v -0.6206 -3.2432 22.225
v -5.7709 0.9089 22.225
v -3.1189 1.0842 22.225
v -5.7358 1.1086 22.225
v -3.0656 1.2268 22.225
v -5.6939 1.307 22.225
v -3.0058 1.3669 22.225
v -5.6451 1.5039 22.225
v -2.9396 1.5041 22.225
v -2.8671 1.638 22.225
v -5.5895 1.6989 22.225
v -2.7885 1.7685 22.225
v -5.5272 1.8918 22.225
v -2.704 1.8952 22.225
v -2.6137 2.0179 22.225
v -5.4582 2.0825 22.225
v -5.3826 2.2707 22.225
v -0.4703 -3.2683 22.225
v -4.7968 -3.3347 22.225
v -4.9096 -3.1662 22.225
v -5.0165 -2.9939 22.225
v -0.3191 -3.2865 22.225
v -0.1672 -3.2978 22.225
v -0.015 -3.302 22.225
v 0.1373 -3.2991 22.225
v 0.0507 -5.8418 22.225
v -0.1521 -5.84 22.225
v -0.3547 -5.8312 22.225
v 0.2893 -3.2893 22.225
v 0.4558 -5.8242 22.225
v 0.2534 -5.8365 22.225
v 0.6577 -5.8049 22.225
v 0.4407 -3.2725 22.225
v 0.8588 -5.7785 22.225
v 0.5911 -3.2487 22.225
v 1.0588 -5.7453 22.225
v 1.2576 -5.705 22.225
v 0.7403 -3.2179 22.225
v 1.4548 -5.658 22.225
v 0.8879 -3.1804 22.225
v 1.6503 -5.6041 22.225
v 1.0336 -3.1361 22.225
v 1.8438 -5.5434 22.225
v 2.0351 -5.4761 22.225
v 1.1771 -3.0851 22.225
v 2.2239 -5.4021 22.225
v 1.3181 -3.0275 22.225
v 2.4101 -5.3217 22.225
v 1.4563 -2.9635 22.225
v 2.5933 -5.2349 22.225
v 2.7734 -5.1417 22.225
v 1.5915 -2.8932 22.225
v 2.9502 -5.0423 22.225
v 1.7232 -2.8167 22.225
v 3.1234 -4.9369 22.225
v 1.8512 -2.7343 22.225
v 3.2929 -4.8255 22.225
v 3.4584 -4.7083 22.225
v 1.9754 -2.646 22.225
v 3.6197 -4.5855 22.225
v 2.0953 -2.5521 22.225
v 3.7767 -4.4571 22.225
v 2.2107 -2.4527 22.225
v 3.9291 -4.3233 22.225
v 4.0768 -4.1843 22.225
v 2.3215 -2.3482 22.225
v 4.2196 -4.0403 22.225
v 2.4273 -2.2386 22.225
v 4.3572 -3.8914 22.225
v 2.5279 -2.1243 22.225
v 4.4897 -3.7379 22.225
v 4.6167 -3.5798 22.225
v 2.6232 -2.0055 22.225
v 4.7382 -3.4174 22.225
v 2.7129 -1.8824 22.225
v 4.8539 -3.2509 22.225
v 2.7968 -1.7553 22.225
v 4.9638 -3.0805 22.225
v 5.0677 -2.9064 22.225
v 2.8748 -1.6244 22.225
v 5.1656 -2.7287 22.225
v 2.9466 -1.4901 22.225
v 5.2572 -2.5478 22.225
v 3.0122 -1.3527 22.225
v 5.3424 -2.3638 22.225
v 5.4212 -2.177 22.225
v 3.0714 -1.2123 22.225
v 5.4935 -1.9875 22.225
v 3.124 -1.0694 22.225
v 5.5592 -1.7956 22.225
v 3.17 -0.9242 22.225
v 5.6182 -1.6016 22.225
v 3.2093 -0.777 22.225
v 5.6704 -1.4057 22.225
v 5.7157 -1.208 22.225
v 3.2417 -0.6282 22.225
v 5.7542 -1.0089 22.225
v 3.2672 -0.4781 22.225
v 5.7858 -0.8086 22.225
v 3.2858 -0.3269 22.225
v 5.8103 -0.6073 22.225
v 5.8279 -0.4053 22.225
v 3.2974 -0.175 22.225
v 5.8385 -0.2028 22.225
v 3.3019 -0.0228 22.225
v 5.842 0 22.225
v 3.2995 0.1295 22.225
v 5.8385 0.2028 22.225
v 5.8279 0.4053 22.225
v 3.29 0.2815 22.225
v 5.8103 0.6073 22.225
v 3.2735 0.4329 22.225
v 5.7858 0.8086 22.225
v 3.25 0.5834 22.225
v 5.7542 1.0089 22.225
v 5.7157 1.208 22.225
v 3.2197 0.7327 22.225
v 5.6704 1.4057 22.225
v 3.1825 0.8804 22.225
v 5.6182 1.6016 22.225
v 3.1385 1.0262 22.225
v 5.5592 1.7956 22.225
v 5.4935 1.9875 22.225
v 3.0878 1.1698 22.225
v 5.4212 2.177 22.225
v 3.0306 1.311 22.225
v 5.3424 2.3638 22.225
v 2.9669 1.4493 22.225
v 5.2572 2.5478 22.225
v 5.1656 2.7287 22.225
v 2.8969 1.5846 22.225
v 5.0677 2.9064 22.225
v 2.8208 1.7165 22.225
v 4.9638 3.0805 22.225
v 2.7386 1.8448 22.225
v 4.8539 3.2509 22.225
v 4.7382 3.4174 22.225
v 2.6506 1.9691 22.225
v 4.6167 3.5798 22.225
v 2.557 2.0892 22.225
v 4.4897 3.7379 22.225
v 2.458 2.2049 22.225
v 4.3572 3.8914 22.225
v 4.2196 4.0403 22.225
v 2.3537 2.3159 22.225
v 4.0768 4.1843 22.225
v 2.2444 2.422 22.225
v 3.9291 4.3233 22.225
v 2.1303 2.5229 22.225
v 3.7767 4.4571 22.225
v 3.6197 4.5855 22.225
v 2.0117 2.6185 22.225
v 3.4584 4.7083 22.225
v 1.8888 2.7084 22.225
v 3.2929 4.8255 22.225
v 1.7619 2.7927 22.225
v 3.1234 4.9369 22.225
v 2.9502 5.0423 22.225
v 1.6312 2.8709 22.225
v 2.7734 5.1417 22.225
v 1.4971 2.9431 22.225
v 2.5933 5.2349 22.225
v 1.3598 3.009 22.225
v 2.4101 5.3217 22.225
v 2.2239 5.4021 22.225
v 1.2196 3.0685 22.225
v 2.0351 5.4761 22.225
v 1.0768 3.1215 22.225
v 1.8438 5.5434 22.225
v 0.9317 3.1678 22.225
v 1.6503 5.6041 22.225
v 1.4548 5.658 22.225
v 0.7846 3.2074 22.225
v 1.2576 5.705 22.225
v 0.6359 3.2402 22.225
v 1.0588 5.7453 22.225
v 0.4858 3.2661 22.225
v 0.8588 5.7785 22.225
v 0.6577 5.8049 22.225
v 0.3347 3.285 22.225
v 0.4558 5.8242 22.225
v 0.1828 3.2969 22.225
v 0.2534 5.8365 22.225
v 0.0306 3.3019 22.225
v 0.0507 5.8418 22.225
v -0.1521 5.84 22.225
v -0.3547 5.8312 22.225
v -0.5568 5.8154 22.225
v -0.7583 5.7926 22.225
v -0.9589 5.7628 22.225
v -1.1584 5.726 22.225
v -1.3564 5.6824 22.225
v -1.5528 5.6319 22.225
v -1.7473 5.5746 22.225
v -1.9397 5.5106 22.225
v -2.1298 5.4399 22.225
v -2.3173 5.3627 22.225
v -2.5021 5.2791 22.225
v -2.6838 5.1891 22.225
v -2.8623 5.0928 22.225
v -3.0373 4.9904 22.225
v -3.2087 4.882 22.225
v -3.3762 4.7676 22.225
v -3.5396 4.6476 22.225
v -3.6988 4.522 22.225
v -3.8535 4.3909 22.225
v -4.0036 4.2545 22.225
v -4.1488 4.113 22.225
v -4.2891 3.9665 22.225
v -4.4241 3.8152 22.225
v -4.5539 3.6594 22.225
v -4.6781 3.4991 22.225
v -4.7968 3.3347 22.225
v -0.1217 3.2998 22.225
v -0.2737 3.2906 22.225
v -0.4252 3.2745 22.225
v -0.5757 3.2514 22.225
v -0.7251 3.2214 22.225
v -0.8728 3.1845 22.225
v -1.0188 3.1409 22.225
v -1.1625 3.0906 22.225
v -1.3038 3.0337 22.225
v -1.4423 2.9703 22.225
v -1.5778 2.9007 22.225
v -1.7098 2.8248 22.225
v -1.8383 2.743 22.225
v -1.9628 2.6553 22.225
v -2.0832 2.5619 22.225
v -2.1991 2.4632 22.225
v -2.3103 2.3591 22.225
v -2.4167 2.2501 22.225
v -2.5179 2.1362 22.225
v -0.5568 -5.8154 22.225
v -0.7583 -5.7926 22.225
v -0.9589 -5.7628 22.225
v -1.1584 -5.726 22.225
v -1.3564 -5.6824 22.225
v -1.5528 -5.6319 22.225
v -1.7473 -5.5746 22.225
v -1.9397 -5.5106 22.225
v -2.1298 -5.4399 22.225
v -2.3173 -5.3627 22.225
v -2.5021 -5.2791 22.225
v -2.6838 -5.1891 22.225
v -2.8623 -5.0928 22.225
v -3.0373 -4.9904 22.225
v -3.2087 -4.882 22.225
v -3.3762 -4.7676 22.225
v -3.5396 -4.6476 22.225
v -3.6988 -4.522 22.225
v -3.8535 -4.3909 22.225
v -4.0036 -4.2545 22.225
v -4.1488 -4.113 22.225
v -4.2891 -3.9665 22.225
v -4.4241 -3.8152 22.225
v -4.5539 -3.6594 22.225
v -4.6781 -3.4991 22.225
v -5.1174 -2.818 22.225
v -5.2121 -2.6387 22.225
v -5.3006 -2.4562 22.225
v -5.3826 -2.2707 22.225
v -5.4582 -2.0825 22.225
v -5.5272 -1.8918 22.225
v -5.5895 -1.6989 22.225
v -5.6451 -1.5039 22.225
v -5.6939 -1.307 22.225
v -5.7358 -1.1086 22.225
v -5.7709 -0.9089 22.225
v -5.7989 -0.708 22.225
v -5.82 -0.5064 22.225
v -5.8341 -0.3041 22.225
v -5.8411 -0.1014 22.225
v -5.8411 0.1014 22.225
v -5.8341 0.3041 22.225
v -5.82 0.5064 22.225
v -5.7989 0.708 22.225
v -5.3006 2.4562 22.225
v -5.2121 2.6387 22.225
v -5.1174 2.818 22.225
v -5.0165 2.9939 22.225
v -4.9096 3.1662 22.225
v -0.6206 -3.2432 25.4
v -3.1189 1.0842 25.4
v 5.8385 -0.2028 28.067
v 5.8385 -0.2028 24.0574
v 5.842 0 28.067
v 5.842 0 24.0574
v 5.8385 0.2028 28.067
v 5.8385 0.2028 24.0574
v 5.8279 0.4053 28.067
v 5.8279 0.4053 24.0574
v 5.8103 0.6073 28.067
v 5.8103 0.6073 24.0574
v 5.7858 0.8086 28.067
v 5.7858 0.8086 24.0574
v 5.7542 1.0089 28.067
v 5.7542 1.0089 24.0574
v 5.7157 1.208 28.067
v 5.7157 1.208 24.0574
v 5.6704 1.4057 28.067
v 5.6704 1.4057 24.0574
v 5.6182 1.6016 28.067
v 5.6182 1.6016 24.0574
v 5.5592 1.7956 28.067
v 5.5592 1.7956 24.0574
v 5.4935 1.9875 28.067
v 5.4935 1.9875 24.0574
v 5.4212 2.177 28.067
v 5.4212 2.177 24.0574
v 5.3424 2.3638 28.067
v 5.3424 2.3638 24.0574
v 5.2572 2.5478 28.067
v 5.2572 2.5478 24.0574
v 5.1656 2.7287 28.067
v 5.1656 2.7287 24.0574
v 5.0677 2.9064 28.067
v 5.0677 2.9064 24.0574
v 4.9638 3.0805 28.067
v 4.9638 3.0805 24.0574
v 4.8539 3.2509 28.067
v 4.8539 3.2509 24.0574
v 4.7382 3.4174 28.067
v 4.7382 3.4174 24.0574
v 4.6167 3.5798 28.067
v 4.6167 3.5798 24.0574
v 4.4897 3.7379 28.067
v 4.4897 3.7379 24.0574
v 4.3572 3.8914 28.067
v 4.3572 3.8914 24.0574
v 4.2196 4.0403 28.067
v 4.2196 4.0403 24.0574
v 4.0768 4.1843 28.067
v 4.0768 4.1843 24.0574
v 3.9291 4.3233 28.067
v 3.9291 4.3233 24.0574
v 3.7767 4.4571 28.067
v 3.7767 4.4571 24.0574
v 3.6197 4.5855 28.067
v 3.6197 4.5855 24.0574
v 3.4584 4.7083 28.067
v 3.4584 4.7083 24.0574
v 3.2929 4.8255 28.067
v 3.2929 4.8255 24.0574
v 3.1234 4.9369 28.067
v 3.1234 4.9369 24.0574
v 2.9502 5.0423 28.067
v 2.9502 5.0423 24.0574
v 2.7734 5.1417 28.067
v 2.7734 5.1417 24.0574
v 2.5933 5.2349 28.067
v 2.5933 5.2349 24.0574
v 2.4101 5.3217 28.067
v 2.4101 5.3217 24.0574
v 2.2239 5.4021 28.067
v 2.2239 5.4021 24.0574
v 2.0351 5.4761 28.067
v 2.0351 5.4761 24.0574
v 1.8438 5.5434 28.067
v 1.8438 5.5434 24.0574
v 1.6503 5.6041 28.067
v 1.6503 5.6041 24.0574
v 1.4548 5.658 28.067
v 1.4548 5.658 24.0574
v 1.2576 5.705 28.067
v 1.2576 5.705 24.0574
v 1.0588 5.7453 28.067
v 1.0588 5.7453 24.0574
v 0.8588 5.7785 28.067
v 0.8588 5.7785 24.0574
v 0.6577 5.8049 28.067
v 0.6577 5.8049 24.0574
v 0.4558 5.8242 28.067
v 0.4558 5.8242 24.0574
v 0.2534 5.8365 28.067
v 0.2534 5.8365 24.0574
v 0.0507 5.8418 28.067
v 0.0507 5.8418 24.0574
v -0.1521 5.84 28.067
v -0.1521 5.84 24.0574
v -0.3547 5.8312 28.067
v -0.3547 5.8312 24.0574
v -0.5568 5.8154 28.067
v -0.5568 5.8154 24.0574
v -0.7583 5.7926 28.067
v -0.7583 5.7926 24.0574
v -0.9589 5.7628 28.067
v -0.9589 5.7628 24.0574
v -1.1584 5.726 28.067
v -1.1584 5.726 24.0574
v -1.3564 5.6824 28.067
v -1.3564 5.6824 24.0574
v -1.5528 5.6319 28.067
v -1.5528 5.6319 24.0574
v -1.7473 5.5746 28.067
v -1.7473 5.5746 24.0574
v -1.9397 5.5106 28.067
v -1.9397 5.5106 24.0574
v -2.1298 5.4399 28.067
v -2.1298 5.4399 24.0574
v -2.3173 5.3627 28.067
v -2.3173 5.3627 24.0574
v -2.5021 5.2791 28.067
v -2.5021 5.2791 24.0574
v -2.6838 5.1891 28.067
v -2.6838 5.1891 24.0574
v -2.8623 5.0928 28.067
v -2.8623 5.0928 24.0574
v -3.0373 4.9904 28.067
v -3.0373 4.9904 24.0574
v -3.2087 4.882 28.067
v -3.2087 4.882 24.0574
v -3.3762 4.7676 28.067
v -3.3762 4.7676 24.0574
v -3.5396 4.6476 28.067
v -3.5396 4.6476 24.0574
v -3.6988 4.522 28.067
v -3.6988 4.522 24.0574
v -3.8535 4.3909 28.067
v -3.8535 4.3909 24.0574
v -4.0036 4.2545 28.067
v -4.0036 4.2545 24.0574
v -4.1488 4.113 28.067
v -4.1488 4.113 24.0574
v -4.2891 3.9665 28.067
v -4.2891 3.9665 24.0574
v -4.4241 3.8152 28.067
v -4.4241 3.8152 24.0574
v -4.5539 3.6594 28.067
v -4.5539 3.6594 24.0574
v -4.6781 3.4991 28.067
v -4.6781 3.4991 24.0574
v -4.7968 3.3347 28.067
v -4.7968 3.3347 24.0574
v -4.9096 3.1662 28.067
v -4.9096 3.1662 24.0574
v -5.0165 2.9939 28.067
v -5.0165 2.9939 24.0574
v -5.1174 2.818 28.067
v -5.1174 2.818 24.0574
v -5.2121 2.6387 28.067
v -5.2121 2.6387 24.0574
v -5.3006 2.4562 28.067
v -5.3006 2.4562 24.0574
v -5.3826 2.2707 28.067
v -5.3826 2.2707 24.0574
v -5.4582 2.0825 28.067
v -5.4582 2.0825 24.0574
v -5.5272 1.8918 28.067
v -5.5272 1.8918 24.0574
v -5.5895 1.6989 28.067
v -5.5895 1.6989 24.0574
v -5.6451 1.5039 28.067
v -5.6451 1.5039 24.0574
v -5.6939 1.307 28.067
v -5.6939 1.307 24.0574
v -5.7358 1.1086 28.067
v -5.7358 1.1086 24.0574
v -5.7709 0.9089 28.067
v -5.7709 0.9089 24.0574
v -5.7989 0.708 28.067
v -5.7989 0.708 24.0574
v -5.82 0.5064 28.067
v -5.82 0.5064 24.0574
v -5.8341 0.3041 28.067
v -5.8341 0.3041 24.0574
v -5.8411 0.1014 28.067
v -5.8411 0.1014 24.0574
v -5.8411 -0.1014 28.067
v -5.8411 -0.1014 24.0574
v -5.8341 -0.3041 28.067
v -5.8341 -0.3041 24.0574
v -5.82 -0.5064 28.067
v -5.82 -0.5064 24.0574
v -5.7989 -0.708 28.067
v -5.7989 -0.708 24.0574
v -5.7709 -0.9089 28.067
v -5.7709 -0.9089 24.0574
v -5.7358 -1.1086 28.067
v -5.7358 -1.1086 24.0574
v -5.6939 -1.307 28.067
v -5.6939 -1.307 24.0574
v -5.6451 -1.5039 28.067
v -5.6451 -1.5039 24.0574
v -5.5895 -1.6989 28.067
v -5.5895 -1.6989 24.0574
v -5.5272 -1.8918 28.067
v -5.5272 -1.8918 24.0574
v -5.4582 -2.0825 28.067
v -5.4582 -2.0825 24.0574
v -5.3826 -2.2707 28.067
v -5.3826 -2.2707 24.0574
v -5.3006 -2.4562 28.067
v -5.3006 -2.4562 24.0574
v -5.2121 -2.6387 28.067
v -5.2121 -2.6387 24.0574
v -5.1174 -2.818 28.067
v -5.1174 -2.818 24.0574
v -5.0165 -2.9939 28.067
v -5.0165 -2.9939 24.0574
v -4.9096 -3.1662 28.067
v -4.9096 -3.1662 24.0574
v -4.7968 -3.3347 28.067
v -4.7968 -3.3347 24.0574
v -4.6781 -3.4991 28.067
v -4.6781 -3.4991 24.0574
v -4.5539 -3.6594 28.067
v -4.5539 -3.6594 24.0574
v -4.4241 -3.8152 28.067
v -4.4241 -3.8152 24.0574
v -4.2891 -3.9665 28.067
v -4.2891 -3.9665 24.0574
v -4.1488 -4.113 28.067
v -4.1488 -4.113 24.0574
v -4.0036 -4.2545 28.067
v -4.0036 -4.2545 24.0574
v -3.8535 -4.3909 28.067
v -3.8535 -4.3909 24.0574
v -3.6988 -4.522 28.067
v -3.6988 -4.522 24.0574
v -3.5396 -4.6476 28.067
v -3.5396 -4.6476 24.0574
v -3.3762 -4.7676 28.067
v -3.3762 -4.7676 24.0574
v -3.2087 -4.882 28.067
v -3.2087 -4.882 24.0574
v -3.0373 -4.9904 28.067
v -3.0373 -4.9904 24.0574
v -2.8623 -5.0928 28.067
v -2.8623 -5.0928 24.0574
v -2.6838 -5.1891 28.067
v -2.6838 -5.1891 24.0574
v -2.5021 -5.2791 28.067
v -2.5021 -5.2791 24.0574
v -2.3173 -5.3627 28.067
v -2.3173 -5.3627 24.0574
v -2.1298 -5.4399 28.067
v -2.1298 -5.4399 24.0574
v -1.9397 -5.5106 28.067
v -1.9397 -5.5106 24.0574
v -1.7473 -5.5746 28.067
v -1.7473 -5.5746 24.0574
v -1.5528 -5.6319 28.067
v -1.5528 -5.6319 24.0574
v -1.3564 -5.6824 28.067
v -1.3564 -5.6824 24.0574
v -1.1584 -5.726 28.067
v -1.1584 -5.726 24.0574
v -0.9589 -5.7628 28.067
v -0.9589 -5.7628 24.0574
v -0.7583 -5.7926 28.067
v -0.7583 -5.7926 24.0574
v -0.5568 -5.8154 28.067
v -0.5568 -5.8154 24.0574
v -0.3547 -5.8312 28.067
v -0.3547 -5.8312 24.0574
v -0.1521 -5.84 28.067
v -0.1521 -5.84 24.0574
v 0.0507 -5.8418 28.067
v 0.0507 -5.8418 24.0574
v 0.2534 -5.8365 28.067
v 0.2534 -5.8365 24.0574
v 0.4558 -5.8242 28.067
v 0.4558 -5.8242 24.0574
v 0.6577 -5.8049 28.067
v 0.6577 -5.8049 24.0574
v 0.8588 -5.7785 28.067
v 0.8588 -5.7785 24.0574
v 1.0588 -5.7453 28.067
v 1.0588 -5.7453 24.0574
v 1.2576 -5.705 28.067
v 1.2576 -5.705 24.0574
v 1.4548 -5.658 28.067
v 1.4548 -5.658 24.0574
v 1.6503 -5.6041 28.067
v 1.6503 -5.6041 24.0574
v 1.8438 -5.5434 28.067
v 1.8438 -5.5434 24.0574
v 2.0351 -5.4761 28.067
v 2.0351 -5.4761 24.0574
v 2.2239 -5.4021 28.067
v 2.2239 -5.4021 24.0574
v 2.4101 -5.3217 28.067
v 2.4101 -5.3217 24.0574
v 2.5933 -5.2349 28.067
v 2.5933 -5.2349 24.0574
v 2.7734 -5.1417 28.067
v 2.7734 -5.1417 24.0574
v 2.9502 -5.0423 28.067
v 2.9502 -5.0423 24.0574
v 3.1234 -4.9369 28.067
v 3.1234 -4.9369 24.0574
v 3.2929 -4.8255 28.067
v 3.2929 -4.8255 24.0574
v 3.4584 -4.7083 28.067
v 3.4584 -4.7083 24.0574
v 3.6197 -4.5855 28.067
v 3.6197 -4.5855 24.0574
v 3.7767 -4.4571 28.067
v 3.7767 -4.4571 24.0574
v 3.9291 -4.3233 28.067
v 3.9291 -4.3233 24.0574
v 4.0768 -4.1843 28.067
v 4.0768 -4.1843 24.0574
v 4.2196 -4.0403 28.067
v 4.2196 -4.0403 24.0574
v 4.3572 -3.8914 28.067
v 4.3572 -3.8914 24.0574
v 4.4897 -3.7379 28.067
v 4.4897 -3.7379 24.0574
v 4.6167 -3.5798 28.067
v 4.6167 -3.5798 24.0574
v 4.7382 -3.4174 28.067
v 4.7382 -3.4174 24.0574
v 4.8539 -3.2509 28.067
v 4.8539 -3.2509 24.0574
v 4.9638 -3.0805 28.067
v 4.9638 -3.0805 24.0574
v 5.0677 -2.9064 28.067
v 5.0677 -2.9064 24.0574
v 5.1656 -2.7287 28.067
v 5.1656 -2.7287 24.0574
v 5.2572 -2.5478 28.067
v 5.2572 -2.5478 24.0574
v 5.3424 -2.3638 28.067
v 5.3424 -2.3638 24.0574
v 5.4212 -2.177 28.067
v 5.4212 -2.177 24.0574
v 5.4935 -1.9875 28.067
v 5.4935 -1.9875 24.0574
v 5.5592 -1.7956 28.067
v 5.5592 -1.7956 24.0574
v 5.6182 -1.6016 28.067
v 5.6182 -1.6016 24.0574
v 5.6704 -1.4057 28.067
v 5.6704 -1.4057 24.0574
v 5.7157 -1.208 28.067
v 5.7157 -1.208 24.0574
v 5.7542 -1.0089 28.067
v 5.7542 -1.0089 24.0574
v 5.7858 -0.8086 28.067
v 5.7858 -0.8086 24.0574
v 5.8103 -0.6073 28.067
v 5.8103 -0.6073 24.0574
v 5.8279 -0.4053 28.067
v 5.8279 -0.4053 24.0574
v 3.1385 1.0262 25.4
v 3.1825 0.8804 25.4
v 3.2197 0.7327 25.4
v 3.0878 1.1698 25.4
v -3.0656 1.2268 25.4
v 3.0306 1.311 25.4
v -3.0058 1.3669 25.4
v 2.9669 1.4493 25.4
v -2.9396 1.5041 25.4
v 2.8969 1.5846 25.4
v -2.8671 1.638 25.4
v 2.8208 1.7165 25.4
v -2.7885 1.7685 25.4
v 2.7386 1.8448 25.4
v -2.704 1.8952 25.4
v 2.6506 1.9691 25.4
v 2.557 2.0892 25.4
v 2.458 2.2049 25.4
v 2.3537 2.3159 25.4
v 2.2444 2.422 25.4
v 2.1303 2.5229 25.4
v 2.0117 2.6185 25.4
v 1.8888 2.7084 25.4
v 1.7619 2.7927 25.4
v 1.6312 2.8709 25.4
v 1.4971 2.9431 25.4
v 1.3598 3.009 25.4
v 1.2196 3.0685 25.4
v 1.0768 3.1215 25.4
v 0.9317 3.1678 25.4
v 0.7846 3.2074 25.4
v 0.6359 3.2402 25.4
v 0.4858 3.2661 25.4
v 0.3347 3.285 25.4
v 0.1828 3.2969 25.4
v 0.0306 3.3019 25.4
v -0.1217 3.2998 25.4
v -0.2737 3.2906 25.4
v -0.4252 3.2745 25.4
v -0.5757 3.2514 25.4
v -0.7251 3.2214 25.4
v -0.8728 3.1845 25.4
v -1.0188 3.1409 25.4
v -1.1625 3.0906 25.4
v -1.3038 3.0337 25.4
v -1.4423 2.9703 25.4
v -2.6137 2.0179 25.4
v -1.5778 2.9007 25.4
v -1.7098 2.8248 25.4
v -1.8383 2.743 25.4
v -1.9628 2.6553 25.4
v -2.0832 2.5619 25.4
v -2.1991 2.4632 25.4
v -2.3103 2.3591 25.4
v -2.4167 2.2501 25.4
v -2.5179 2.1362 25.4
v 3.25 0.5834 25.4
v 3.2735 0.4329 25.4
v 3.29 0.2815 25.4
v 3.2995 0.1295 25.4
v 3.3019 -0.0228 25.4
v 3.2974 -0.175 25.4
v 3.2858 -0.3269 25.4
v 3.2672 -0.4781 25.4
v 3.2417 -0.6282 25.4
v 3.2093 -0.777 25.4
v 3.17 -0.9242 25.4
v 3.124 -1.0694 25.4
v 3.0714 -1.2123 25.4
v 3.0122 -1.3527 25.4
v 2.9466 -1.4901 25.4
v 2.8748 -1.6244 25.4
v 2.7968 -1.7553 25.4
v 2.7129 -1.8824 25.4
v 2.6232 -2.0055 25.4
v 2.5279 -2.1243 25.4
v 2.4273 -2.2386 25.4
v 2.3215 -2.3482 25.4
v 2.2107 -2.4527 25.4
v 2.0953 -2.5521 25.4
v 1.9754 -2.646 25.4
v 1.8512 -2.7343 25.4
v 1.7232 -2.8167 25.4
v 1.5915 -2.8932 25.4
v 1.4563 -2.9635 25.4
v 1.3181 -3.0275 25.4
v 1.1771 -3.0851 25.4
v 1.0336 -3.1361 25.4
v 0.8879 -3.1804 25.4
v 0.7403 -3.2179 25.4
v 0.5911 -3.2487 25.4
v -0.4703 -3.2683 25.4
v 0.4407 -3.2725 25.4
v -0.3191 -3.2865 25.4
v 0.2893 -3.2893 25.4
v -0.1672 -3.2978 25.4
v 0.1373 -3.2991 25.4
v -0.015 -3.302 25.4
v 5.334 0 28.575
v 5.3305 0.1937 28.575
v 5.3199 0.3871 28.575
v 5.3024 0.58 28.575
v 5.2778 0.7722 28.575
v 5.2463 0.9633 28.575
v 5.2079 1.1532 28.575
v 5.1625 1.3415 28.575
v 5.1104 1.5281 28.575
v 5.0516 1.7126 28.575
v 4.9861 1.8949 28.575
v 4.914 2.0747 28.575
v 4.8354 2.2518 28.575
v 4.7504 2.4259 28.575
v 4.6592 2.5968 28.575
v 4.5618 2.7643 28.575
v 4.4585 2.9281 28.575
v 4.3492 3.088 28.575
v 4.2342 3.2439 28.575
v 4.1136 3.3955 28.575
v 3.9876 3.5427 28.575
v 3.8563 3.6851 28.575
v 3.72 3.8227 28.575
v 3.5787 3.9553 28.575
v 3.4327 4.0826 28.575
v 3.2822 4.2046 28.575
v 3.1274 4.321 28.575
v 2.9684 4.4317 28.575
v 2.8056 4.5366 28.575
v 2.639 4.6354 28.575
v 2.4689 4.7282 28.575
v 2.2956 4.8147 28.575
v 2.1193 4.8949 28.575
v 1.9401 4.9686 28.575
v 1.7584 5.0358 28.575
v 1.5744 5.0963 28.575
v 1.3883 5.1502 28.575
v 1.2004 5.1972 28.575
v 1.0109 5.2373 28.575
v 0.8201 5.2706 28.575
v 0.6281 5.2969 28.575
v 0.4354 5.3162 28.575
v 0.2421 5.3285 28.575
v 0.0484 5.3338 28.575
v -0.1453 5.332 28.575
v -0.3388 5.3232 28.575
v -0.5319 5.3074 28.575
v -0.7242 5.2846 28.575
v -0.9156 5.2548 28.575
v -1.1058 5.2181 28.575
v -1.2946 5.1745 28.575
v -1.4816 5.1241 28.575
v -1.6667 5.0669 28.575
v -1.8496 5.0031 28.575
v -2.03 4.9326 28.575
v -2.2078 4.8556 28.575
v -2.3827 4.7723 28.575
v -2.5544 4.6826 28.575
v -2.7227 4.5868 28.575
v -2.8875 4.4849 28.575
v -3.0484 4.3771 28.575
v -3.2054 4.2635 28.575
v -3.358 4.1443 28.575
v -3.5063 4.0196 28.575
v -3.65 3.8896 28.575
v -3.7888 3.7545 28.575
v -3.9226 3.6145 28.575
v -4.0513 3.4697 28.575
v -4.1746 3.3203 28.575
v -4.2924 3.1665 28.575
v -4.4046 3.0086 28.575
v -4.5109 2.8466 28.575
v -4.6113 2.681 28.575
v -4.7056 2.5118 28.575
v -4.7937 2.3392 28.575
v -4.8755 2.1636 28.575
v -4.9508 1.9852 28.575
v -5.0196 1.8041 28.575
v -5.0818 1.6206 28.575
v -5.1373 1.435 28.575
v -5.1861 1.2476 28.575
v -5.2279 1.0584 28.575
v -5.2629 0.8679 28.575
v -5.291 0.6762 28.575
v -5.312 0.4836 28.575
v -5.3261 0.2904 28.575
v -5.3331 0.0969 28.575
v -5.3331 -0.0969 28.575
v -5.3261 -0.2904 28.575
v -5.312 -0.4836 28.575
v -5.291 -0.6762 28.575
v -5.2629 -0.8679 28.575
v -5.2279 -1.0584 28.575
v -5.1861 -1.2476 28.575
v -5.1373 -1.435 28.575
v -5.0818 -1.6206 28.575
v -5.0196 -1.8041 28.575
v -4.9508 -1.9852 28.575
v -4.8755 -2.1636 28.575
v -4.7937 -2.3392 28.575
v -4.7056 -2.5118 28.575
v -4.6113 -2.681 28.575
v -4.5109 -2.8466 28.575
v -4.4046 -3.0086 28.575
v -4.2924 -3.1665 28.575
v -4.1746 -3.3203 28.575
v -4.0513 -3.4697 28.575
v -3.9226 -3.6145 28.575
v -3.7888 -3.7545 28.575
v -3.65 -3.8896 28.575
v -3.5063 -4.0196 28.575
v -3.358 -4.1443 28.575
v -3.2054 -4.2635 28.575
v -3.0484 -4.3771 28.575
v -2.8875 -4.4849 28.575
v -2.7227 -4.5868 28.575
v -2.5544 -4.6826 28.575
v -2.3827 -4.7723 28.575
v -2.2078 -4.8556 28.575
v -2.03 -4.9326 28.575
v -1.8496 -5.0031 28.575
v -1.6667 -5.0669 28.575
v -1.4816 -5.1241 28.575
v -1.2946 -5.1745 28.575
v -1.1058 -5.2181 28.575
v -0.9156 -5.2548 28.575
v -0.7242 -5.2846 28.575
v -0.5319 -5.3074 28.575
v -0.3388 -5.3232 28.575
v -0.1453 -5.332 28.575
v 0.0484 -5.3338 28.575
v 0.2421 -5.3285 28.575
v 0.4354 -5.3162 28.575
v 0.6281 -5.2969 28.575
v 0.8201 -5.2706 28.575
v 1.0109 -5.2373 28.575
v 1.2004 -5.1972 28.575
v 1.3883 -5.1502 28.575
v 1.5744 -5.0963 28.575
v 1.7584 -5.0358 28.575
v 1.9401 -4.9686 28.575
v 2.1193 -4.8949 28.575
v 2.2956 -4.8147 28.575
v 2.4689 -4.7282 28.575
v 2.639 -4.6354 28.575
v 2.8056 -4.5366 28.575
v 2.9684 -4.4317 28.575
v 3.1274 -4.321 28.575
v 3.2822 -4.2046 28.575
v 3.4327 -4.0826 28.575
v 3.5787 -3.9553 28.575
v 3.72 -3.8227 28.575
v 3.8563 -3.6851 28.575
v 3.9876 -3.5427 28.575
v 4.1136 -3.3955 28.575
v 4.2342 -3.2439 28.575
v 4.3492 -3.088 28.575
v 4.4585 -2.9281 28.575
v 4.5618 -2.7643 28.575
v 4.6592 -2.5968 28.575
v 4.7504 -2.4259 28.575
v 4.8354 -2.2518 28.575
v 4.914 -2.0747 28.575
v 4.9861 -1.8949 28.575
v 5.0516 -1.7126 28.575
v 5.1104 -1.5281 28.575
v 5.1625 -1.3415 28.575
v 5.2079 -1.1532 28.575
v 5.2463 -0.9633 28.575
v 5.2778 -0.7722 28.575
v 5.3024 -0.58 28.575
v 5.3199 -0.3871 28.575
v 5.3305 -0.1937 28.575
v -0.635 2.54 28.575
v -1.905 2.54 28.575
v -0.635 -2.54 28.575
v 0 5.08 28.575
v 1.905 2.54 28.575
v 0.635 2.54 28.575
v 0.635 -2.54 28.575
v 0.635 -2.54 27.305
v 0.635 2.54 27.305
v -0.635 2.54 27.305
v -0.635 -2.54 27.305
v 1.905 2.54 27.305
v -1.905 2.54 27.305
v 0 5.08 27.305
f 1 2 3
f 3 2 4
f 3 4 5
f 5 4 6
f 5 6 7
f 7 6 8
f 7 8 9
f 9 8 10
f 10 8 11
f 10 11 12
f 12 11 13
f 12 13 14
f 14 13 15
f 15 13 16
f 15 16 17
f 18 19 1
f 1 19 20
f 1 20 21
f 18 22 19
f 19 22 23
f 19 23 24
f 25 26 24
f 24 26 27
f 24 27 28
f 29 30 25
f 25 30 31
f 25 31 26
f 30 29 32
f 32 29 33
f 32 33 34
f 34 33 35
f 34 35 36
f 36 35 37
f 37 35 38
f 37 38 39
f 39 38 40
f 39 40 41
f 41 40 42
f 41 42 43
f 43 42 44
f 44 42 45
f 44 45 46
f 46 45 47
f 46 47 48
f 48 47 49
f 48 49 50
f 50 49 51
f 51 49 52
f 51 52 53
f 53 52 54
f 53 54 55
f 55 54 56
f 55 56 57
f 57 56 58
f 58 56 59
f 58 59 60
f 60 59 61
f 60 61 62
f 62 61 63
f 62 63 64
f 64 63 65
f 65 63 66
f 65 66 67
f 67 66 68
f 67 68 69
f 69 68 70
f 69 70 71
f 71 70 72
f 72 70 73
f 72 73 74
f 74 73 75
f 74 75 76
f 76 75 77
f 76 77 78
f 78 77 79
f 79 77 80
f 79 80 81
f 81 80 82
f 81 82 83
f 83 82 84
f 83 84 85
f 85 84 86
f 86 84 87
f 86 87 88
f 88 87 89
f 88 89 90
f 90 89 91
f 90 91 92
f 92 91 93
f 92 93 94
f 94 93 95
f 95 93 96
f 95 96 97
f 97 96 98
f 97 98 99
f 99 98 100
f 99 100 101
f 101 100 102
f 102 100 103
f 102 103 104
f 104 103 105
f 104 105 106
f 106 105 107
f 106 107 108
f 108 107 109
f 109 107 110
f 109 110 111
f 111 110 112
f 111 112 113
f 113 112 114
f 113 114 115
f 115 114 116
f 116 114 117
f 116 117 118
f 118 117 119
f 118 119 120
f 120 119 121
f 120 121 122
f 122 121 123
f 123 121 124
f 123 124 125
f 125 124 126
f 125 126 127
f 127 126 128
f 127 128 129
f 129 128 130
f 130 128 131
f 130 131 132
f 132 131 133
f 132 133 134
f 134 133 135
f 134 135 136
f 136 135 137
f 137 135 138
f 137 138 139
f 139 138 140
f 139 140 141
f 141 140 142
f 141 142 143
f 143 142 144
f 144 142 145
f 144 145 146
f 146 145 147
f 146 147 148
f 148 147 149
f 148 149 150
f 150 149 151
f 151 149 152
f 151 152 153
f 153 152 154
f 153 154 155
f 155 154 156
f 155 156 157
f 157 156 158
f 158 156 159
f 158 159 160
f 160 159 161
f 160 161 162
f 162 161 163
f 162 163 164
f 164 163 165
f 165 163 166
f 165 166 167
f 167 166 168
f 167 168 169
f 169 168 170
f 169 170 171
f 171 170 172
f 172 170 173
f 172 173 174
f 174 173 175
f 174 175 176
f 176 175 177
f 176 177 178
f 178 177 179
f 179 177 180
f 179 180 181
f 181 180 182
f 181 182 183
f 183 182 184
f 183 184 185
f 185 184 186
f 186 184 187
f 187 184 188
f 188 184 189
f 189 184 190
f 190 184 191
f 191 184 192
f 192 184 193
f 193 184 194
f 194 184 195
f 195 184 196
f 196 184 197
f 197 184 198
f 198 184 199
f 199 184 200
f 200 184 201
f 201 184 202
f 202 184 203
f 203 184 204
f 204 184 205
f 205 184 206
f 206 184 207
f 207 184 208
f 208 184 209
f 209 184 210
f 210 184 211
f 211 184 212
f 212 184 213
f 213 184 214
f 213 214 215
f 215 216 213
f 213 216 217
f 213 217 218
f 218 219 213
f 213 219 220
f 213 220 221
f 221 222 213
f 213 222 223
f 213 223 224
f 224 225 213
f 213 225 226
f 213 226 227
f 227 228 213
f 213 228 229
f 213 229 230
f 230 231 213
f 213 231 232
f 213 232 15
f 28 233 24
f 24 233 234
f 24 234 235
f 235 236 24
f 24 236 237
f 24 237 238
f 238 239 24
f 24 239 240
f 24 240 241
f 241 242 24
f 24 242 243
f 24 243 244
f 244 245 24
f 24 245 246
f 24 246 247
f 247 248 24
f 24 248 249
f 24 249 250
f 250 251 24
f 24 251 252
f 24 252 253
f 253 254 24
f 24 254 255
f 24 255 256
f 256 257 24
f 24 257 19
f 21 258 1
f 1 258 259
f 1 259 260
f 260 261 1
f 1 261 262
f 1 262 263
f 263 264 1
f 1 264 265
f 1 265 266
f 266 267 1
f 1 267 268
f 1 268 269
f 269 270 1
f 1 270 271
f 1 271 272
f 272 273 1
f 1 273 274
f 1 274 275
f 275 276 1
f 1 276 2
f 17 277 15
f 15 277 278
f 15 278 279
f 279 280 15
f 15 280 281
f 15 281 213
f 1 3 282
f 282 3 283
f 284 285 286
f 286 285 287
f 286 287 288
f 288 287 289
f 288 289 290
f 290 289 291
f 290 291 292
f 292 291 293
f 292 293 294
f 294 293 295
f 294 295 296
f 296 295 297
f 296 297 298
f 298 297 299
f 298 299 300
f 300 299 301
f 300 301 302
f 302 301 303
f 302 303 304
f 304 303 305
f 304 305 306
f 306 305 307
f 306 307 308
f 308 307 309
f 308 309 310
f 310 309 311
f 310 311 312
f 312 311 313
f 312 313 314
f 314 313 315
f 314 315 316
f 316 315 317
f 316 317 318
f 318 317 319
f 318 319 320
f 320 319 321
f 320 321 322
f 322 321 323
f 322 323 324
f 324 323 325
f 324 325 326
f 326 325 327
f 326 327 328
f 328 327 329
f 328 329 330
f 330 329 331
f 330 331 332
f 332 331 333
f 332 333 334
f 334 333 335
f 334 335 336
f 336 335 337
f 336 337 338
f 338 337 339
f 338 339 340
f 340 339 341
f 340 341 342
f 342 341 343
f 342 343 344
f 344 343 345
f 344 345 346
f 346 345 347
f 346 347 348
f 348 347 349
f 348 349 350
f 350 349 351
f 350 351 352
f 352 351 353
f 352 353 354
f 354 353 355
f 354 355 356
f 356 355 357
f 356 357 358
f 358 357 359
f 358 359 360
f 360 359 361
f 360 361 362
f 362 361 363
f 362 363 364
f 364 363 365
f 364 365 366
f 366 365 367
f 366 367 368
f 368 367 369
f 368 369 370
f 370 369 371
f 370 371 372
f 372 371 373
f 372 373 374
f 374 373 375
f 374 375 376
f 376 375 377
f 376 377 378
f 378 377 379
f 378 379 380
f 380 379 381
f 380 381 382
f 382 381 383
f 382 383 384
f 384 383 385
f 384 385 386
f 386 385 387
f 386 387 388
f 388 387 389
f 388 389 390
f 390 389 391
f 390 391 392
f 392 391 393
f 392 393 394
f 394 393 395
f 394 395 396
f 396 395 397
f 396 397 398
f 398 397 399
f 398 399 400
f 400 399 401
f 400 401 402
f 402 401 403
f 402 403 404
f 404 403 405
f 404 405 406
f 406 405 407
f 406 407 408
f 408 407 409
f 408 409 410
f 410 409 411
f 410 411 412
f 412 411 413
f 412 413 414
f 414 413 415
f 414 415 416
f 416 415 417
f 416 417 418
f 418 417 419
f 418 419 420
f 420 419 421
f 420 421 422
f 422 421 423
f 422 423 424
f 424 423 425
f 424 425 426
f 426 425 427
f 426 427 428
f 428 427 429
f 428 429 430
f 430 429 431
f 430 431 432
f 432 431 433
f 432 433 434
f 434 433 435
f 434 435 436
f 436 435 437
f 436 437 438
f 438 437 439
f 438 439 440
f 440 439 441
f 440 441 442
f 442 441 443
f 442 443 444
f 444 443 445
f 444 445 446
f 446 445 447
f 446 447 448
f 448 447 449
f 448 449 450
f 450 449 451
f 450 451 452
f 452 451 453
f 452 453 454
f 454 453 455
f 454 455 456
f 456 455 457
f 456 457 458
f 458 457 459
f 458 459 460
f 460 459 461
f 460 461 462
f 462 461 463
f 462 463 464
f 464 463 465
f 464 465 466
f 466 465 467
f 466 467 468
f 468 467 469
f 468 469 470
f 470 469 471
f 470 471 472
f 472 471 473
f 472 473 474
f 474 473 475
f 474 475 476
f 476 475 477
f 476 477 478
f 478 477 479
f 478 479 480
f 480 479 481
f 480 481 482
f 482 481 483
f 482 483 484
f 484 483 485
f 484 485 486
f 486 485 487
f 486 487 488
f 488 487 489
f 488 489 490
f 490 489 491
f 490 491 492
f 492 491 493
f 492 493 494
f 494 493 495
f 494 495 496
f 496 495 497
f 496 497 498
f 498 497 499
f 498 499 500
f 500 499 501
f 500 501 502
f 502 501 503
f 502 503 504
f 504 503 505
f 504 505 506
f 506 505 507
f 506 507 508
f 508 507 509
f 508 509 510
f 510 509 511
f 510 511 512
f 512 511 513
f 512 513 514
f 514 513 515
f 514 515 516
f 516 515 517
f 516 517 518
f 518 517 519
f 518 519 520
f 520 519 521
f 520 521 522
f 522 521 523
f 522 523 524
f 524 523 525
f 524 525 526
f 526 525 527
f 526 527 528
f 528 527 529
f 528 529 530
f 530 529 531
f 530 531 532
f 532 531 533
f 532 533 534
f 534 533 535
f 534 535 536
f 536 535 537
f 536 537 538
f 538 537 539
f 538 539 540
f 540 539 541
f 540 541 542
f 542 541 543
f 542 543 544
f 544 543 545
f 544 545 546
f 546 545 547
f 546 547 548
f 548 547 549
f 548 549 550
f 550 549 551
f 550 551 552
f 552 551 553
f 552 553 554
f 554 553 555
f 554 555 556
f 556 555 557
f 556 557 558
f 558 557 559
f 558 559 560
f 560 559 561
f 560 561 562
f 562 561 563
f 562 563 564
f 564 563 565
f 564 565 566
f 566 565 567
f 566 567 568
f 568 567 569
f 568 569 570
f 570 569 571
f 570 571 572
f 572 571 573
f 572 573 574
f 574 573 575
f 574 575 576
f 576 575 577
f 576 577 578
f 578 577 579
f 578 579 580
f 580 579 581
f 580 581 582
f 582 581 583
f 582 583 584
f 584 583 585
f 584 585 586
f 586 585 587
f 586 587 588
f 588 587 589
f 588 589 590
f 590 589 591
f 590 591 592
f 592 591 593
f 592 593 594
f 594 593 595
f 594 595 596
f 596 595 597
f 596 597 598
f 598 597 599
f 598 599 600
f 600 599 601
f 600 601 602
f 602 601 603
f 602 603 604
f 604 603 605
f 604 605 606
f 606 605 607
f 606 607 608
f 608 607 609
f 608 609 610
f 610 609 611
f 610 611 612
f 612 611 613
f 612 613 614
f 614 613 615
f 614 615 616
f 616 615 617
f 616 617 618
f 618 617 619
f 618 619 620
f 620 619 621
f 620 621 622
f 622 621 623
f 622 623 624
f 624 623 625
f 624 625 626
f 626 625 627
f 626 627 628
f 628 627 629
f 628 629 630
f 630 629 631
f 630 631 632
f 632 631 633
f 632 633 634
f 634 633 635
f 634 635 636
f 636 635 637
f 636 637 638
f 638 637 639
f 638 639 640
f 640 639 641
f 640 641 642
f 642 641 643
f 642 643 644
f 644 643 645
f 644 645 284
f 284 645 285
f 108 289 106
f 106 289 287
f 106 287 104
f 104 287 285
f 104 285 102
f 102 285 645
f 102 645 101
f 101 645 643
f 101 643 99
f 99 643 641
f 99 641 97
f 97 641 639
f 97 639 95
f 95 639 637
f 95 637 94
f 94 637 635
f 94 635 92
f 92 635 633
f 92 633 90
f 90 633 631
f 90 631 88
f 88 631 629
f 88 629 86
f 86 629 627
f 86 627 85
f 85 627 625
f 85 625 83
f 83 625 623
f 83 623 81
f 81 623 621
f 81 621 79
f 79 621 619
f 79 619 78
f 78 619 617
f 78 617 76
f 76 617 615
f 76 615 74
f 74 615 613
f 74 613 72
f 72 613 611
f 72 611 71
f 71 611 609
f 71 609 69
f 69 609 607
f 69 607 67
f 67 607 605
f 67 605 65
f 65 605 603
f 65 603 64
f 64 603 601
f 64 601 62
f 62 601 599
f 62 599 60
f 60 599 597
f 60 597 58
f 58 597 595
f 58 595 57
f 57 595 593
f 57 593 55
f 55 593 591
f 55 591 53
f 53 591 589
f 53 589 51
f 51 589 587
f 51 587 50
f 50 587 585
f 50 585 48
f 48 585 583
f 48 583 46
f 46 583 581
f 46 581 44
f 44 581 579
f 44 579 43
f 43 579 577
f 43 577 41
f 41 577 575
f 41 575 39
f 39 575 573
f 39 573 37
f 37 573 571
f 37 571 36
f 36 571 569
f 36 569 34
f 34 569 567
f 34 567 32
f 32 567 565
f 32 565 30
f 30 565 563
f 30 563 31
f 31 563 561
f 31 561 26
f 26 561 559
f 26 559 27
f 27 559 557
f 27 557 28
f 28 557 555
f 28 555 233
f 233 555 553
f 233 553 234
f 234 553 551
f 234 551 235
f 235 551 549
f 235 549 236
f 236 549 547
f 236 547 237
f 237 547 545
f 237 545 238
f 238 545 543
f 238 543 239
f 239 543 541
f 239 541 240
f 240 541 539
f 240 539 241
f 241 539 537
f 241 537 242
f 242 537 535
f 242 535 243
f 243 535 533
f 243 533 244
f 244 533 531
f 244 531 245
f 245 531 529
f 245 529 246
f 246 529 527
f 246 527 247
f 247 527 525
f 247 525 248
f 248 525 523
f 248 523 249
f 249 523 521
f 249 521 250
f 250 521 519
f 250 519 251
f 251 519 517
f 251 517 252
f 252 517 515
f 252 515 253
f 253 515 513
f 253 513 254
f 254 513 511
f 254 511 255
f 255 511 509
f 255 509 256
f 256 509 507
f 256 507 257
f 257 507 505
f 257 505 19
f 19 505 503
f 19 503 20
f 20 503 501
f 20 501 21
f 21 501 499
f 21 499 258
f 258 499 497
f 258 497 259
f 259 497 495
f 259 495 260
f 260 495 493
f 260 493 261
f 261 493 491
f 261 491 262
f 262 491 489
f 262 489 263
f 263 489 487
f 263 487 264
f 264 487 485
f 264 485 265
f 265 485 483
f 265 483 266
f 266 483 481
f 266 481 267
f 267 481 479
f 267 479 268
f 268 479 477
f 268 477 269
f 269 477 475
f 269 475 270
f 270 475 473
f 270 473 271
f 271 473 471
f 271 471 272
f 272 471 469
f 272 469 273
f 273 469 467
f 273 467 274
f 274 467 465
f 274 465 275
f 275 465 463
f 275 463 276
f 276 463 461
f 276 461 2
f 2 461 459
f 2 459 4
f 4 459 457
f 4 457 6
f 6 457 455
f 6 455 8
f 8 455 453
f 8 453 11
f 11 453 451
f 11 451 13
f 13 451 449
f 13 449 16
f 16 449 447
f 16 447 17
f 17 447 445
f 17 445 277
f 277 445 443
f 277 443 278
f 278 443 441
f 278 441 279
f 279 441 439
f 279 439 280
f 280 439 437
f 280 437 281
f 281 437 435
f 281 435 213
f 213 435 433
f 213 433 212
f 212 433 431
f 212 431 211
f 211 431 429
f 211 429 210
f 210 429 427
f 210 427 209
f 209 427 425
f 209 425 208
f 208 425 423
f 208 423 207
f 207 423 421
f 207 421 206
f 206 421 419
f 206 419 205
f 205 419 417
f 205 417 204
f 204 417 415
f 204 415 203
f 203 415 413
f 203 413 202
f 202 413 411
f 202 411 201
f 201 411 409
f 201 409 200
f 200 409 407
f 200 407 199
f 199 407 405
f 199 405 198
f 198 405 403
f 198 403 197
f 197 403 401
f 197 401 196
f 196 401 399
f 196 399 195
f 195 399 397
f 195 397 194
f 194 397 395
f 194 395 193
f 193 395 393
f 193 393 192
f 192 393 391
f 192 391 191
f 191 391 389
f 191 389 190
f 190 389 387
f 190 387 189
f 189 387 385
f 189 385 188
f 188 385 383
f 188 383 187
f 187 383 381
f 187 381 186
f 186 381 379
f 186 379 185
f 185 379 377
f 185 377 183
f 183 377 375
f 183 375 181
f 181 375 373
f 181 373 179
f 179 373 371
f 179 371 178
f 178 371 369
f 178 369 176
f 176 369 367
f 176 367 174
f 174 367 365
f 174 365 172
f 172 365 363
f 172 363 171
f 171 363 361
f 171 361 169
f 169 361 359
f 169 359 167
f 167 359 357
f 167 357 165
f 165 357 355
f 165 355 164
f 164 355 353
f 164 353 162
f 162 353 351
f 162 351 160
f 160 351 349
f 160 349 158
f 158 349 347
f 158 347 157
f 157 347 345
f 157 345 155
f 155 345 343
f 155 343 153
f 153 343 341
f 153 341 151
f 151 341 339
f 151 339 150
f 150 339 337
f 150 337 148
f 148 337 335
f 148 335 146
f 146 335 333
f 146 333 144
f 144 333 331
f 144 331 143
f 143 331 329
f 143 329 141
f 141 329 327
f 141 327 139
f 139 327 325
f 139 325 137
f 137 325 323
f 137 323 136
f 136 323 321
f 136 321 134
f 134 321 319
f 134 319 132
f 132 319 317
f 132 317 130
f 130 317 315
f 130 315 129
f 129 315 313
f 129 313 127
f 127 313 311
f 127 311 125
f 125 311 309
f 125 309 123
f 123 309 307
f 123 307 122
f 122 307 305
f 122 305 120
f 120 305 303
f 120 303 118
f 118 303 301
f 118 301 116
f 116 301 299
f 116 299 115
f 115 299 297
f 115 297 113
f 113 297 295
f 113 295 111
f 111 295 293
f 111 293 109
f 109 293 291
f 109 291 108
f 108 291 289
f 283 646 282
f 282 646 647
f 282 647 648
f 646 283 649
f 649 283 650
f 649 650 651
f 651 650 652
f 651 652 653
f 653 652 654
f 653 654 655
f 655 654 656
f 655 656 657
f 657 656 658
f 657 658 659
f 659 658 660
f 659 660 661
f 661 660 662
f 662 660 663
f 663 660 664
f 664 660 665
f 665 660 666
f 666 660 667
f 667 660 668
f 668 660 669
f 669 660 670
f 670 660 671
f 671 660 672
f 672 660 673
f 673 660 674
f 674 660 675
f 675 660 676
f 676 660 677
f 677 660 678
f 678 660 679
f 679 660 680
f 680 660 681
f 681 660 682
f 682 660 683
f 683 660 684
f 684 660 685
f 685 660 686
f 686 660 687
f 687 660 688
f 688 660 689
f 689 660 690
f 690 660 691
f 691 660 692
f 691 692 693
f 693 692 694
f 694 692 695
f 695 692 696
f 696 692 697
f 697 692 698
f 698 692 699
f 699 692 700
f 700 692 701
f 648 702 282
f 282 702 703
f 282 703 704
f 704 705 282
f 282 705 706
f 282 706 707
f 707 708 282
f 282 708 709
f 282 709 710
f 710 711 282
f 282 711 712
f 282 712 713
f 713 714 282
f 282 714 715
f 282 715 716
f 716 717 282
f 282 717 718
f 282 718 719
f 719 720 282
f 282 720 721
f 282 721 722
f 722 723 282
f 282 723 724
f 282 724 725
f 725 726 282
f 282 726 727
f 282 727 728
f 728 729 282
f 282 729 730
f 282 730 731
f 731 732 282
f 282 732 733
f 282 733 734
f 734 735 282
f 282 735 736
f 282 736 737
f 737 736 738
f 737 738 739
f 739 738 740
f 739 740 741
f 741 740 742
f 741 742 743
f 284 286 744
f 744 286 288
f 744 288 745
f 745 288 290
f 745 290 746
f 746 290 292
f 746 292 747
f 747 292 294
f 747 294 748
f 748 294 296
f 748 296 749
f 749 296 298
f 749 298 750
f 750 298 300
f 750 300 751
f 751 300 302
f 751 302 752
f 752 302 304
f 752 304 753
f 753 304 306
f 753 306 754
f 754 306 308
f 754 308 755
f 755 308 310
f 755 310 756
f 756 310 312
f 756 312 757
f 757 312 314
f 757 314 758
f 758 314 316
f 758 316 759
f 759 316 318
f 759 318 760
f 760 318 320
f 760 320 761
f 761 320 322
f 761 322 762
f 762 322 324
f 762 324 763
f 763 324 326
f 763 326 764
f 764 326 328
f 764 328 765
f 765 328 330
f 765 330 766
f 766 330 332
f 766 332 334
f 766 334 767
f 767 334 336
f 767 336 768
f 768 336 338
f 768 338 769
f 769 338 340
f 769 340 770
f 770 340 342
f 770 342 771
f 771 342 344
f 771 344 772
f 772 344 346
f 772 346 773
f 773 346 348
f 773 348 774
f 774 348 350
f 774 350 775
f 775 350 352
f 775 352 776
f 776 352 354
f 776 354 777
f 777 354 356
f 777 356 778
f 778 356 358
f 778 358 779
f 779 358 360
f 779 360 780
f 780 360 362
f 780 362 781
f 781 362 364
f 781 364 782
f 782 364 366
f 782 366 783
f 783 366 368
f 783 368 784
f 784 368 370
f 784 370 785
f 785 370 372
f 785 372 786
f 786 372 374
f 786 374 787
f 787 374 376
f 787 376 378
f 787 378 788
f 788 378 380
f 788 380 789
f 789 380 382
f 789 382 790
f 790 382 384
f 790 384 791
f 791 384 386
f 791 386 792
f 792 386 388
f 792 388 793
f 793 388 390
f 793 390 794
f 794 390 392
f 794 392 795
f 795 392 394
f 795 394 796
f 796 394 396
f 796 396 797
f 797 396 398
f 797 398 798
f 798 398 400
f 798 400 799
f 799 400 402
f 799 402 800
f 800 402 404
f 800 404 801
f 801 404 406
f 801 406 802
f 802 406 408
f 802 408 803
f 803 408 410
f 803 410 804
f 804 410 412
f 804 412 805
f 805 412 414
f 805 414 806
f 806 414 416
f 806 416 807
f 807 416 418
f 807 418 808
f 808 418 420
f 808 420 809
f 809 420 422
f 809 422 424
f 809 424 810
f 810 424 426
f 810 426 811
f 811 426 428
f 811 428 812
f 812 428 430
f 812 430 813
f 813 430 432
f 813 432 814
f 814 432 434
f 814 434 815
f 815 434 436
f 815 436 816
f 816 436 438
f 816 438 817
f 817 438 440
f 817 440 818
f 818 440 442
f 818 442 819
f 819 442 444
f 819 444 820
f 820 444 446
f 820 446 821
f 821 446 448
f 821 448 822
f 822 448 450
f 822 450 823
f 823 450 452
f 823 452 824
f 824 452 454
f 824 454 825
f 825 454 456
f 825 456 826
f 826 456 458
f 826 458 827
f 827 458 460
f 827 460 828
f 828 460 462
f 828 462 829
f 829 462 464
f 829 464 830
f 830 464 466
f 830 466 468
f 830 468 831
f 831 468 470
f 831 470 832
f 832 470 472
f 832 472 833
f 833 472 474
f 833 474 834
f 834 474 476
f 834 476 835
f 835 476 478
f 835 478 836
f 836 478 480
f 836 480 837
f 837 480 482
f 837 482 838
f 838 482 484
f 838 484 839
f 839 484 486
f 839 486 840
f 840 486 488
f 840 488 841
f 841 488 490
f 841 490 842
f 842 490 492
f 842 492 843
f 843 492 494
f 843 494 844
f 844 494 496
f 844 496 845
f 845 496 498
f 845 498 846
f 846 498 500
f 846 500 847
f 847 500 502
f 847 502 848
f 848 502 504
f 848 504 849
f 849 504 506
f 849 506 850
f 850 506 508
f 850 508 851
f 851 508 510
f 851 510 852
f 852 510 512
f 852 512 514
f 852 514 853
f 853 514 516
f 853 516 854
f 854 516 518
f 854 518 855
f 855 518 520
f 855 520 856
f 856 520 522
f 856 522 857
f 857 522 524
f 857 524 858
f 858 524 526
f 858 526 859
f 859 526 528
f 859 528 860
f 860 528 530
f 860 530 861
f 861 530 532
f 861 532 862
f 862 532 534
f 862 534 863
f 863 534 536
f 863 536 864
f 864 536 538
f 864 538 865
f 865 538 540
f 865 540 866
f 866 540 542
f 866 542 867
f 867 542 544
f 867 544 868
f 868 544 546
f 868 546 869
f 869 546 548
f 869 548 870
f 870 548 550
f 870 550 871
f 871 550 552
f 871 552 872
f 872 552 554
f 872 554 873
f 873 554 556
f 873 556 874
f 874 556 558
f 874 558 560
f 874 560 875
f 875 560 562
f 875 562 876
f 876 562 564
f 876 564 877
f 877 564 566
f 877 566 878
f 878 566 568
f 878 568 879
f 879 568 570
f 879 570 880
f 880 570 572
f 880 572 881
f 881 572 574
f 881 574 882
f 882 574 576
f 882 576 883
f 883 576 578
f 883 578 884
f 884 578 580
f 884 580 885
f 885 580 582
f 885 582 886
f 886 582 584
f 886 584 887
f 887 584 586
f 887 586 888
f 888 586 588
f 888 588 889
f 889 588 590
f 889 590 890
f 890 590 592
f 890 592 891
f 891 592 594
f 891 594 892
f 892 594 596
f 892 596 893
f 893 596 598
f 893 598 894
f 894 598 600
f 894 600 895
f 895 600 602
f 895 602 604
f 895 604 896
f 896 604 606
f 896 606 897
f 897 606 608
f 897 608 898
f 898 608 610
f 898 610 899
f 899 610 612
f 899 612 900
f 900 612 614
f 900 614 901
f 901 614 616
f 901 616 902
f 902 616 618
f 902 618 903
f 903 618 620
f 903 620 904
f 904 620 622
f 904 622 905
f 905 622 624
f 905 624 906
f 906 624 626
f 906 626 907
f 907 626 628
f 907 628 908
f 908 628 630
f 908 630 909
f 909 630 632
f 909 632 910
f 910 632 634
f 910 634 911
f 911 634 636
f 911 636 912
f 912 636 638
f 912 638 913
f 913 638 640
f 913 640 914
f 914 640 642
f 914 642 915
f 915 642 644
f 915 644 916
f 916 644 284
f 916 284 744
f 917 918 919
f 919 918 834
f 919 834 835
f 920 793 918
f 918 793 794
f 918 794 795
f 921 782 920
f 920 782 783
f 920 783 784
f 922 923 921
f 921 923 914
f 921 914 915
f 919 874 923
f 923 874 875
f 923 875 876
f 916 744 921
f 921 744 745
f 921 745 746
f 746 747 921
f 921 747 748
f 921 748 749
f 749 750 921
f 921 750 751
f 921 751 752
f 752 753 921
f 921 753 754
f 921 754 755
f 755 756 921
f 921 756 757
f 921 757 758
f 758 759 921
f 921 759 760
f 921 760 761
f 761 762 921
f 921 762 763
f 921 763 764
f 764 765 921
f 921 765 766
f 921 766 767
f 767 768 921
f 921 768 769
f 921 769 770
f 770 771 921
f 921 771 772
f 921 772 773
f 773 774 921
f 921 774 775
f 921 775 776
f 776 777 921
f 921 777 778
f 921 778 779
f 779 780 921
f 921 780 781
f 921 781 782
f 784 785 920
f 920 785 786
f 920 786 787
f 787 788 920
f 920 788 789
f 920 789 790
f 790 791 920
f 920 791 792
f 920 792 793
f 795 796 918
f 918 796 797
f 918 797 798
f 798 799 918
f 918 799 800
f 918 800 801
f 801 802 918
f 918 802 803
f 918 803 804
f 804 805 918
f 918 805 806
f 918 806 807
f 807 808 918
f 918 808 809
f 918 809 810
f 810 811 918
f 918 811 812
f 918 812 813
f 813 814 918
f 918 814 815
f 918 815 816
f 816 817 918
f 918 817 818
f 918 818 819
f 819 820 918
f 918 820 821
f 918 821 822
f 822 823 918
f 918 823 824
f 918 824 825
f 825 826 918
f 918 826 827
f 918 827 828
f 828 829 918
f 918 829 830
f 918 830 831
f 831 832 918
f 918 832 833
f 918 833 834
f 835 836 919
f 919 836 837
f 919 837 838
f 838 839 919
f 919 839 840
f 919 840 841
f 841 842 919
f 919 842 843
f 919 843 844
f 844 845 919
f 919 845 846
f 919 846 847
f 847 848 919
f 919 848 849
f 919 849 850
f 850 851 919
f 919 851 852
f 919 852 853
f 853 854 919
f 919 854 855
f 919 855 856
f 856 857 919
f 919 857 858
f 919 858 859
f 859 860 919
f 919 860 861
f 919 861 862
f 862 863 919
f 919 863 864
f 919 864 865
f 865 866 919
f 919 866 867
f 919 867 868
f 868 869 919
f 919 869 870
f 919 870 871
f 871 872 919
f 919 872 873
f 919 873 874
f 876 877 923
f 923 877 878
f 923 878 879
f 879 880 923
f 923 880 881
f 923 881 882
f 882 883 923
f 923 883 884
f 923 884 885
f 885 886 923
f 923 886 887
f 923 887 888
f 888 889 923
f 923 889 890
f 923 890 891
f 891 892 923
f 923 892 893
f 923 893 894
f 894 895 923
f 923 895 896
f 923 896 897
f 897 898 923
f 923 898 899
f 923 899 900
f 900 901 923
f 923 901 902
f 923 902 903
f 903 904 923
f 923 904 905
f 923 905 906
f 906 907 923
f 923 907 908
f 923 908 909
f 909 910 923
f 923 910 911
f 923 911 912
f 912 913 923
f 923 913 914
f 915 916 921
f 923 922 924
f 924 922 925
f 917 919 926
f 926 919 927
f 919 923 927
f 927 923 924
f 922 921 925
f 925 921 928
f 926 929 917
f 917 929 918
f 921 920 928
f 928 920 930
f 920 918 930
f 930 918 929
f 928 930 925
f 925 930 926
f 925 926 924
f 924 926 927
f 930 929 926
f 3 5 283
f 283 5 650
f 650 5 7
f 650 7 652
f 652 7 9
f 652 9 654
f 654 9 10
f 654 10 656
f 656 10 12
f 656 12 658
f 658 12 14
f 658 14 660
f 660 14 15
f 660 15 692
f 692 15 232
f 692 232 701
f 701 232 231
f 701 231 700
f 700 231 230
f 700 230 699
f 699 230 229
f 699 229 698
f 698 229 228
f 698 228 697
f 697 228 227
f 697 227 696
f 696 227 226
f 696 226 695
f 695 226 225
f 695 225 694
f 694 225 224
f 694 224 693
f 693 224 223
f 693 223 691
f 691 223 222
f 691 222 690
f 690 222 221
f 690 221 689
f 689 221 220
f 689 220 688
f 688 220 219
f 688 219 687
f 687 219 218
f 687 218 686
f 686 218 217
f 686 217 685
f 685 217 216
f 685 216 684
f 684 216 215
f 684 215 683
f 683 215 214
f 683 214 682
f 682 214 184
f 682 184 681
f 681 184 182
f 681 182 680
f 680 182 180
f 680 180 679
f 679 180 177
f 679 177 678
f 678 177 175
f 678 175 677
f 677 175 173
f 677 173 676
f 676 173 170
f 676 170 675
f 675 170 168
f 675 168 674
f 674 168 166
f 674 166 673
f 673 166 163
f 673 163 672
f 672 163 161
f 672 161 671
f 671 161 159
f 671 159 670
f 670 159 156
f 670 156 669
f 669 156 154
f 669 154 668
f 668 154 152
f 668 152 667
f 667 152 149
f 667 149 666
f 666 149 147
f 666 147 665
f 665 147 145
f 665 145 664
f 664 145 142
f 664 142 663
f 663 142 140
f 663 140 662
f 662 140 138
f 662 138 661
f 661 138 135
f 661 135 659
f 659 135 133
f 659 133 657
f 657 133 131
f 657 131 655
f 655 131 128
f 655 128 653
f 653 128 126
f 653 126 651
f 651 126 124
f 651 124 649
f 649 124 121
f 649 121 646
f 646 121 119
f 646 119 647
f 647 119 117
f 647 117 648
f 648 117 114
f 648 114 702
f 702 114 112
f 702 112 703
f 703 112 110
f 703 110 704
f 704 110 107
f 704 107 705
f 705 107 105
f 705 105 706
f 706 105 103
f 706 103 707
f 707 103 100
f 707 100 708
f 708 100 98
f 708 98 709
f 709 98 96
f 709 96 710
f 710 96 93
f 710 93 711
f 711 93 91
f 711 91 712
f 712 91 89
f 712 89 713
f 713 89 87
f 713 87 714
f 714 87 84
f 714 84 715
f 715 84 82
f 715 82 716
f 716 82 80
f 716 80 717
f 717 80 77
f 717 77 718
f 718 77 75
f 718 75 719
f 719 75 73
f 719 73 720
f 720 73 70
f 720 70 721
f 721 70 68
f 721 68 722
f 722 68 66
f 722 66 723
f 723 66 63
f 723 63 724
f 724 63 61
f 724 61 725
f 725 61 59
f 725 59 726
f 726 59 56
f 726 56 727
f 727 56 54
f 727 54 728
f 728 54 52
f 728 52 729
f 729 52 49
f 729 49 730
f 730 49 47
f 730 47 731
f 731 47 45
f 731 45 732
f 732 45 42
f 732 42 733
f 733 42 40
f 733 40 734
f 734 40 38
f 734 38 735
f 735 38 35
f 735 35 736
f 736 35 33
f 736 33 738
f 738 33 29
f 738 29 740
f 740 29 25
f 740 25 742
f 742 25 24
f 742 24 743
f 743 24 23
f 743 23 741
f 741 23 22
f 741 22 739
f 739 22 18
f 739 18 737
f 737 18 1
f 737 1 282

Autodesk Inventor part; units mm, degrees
ref_plane "YZ Plane" through (0, 0, 0) normal (1, 0, 0) x (0, 1, 0)
ref_plane "XZ Plane" through (0, 0, 0) normal (0, 1, 0) x (-1, 0, 0)
ref_plane "XY Plane" through (0, 0, 0) normal (0, 0, 1) x (1, 0, 0)
sketch "Sketch1" plane through (0, 0, 0) normal (0, 0, 1) x (1, 0, 0)
  circle A0 centre (0, 0) radius 2.9845
  circle A1 centre (0, 0) radius 5.842
  circle A2 centre (0, 0) radius 3.302
  dimension "d0" = 5.969
  dimension "d2" = 0.3175
  dimension "d5" = 2.54
extrude "Extrusion1" add sketch "Sketch1" along normal blind 25.4 contours A1
sketch "Sketch2" plane through (0, 0, 25.4) normal (0, 0, 1) x (1, 0, 0)
  circle A0 centre (0, 0) radius 5.842 projected
extrude "Extrusion2" add sketch "Sketch2" along normal blind 3.175
sketch "Sketch3" plane through (0, 0, 28.575) normal (0, 0, 1) x (1, 0, 0)
  line L0 (0.635, -2.54) -> (-0.635, -2.54)
  line L1 (-0.635, -2.54) -> (-0.635, 2.54)
  line L2 (-0.635, 2.54) -> (0.635, 2.54)
  line L3 (0.635, 2.54) -> (0.635, -2.54)
  line L4 (0.635, -2.54) -> (-0.635, 2.54) construction
  line L5 (-0.635, -2.54) -> (0.635, 2.54) construction
  line L6 (0, 2.54) -> (0, -2.54) construction
  line L7 (-1.905, 2.54) -> (1.905, 2.54)
  line L8 (1.905, 2.54) -> (0, 5.08)
  line L9 (0, 5.08) -> (-1.905, 2.54)
  point P0 (0, 0)
  dimension "d8" = 5.08
  dimension "d9" = 2.54
  dimension "d10" = 1.27
  dimension "d11" = 3.81
extrude "Extrusion3" cut sketch "Sketch3" against normal blind 1.27
chamfer "Chamfer1" distance 0.508 angle 45 1 edges at (-5.842, 0, 28.575)
sketch "Sketch6" plane through (0, 0, 25.4) normal (0, 0, -1) x (-1, 0, 0)
  circle A0 centre (0, 0) radius 3.302 projected
  line L0 (0.6206, 3.2432) -> (3.1189, -1.0842) construction
  line L1 (3.1189, 1.0842) -> (0.6206, -3.2432)
  line L2 (0, 0) -> (3.302, 0) construction
  circle A1 centre (0, 0) radius 3.302 construction
  line L3 (0, 0) -> (2.8596, -1.651) construction
  line L4 (0, 0) -> (2.8596, 1.651) construction
  line L5 (-1.3144, 4.3273) -> (-3.8128, 0) construction
  arc A2 (0.6206, -3.2432) -> (3.1189, 1.0842) centre (0, 0) ccw
  dimension "d24" = 60
  dimension "d26" = 5.461
extrude "Extrusion6" add sketch "Sketch6" along normal blind 10.16 contours A0 L1 picked at (1.6947, -1.725)
sketch "Sketch7" plane through (0, 0, 28.575) normal (0, 0, 1) x (1, 0, 0)
  circle A0 centre (0, 0) radius 5.842 projected
extrude "Extrusion7" cut sketch "Sketch7" against normal blind 6.35 keep common part
equation "\"d9\" = 0.5 * d8"
equation "\"d11\" = 3 * d10"
properties part number "testpotcap"
